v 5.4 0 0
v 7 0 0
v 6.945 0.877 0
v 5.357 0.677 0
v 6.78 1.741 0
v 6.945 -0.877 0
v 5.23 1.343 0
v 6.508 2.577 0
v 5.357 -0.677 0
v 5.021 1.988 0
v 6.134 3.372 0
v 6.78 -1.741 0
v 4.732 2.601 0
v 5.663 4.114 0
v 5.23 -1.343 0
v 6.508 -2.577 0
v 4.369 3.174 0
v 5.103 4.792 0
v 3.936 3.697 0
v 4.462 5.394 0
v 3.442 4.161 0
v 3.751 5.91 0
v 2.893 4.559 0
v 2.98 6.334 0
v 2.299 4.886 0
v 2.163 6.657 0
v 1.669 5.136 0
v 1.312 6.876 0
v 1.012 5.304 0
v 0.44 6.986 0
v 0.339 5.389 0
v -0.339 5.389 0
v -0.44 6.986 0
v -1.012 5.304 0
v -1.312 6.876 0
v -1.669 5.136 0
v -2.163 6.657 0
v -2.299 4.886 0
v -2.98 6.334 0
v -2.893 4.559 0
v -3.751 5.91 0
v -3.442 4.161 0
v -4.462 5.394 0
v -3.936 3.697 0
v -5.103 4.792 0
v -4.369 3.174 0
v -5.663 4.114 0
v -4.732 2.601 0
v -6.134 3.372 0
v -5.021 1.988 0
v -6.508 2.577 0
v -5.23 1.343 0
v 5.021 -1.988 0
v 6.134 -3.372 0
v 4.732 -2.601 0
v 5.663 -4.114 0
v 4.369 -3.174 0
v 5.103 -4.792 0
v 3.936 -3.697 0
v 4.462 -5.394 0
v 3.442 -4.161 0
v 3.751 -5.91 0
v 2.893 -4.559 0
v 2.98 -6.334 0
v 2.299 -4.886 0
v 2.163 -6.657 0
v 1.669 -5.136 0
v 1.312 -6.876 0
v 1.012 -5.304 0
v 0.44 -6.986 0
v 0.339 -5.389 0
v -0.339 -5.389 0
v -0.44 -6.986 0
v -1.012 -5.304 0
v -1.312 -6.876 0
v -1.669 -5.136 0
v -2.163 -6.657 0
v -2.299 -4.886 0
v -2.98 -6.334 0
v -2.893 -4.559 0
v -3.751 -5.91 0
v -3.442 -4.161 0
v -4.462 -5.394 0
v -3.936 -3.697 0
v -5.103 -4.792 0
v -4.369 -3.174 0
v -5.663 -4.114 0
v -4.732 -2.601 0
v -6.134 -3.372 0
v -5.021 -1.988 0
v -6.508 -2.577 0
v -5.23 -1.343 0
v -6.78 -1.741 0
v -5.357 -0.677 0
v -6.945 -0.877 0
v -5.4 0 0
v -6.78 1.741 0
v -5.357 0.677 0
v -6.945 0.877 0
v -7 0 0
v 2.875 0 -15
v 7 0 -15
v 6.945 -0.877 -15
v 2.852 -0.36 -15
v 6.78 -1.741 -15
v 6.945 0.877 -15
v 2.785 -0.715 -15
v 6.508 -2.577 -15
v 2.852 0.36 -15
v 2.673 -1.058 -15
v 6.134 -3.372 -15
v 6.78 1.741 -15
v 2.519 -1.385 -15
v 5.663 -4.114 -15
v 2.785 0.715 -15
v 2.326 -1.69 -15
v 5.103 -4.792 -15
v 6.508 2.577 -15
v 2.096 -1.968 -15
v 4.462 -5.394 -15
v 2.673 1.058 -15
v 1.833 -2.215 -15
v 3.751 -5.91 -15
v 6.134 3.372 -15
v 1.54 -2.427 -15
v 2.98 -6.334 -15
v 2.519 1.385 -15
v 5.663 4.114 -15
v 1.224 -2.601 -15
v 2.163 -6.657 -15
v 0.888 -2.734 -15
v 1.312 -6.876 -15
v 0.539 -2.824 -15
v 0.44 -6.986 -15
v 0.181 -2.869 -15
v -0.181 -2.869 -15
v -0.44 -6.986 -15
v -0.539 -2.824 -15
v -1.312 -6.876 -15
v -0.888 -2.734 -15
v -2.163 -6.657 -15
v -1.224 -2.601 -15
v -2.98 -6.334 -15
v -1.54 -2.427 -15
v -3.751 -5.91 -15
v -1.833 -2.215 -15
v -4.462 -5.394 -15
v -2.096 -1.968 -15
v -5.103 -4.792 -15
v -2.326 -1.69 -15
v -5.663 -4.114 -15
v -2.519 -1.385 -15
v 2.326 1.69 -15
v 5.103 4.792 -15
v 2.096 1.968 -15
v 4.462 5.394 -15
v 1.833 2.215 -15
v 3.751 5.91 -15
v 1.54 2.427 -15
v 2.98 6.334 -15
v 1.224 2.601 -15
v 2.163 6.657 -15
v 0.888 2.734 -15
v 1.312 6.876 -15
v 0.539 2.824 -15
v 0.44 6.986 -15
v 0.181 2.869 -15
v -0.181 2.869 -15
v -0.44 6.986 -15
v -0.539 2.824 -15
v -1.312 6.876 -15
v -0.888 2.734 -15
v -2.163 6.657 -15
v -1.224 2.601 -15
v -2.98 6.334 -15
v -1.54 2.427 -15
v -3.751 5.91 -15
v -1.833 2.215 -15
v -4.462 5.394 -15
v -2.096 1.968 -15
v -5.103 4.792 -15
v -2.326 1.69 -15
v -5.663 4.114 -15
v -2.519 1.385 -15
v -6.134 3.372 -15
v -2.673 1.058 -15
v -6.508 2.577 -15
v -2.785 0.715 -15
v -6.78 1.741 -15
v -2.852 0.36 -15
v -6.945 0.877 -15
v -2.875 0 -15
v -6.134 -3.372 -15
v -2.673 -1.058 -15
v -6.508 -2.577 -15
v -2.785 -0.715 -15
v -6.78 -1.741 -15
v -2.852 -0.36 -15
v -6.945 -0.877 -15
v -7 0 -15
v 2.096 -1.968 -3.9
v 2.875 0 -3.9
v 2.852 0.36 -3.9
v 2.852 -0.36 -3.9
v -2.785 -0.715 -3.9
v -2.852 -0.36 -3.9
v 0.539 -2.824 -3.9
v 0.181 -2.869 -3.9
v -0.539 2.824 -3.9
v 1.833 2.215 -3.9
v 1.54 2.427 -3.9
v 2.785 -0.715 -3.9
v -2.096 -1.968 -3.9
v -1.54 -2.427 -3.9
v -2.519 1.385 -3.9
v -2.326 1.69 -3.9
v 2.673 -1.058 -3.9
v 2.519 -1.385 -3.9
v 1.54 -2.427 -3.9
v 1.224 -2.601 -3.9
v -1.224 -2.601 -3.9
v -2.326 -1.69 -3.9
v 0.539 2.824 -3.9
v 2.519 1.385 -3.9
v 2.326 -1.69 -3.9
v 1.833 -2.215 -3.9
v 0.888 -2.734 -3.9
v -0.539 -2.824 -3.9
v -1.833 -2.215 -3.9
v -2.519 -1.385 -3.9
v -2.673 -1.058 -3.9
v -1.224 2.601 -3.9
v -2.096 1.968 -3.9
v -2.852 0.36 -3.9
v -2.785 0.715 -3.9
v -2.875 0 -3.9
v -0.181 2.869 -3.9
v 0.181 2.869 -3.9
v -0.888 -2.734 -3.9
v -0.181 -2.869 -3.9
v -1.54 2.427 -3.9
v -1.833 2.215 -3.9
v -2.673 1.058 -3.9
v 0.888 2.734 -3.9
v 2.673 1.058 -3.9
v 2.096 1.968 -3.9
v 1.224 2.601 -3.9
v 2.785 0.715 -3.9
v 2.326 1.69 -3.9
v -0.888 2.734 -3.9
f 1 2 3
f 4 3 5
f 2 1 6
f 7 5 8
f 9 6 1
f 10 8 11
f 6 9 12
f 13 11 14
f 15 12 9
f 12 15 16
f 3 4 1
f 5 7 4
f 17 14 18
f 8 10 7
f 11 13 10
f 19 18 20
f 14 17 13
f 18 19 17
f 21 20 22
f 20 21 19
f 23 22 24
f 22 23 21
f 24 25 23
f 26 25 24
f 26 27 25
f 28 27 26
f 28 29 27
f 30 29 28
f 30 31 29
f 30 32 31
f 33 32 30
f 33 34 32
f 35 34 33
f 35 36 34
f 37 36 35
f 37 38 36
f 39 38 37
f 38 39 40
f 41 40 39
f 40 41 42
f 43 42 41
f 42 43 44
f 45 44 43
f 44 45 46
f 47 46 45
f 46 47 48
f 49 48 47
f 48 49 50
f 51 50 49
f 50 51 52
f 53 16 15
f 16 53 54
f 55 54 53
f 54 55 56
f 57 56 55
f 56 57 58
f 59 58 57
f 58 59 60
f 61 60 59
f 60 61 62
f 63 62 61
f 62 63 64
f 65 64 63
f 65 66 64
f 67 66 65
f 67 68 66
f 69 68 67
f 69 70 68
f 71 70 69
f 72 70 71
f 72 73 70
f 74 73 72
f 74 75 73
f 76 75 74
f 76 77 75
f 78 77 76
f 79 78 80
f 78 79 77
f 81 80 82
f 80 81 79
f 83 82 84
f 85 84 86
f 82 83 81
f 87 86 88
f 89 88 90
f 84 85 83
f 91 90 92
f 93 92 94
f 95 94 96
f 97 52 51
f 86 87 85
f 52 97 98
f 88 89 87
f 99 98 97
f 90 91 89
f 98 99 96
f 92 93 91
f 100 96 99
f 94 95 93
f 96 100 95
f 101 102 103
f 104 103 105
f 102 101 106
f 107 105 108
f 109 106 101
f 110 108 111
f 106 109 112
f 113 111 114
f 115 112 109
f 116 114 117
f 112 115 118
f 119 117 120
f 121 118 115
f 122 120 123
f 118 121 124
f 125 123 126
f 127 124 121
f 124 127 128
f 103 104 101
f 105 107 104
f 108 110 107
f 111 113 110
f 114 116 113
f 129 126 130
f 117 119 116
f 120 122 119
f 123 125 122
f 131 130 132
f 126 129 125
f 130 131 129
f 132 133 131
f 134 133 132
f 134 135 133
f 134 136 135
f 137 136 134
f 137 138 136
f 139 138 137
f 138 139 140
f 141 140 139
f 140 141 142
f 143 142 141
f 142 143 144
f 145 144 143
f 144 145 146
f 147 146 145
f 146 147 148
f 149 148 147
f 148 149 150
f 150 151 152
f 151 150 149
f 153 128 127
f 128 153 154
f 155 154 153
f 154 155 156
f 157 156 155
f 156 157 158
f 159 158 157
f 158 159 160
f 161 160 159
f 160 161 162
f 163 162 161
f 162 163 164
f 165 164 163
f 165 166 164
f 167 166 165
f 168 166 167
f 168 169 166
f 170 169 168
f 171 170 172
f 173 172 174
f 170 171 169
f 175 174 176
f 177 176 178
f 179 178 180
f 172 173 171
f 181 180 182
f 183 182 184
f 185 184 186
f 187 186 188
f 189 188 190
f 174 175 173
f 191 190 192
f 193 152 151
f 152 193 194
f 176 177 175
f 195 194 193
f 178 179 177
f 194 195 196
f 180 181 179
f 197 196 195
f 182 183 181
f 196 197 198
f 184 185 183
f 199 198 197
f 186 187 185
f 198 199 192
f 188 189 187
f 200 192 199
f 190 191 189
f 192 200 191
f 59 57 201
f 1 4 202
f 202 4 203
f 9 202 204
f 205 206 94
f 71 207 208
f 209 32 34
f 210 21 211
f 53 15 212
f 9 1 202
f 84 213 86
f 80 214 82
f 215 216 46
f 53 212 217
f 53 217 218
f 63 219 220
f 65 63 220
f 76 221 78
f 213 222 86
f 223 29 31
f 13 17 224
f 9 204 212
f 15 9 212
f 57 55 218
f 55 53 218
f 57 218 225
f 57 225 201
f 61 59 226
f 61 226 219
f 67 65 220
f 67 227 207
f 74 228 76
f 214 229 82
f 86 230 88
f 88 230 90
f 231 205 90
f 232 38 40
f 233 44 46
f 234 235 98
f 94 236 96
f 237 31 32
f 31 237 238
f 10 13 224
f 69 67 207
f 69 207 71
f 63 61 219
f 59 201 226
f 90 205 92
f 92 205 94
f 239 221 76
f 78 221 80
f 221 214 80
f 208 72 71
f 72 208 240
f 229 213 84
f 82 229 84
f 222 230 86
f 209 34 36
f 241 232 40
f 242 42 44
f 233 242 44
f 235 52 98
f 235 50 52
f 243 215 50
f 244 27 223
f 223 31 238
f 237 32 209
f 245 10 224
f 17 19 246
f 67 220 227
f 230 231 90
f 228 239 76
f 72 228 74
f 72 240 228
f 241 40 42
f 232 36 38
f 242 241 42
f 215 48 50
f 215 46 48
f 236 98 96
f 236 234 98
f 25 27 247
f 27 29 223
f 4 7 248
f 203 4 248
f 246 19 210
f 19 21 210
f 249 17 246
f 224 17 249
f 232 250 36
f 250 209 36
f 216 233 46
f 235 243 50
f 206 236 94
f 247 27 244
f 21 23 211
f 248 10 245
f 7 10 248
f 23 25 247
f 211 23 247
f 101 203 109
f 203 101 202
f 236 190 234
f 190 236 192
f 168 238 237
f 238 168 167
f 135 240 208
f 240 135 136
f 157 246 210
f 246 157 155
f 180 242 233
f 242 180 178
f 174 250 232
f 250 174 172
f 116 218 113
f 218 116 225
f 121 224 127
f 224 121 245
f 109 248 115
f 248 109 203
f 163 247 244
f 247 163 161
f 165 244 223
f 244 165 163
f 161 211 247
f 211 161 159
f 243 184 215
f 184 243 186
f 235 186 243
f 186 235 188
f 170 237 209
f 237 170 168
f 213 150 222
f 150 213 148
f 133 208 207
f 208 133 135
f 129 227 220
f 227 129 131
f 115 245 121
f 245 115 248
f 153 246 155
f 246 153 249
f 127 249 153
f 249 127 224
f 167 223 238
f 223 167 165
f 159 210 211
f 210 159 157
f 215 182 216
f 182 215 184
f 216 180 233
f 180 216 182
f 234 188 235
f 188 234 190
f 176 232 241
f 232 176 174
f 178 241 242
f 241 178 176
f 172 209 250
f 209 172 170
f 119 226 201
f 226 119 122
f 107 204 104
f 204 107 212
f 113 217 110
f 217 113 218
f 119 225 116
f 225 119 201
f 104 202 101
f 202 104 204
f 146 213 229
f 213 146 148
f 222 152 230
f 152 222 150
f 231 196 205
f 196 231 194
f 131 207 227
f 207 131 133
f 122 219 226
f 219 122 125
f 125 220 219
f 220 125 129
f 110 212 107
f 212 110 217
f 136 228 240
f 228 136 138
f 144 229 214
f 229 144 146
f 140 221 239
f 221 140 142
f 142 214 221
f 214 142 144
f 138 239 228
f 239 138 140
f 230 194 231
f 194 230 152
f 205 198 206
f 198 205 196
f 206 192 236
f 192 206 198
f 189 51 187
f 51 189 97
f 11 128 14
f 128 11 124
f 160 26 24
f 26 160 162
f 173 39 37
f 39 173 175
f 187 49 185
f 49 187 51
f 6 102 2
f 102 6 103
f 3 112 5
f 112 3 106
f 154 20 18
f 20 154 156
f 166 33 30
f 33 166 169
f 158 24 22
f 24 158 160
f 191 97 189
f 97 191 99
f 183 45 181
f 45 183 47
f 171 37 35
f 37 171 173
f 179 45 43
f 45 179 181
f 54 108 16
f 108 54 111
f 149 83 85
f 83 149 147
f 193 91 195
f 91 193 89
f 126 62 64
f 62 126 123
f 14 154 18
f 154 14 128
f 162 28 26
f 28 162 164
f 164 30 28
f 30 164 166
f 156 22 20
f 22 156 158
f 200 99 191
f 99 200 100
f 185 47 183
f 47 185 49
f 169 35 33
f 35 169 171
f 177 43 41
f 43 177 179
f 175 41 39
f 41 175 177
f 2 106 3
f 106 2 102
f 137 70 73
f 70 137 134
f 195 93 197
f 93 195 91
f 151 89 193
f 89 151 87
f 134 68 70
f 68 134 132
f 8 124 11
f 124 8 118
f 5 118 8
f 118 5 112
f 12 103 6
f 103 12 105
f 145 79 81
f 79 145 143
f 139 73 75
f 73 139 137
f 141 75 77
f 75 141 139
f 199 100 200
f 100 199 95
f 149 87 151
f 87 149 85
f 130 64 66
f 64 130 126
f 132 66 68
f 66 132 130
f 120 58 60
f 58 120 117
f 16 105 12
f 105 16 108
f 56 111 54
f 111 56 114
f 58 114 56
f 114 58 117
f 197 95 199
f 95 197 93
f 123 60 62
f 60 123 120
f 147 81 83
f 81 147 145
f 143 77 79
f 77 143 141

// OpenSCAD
$fn = 50;


difference() {
	union() {
		translate(v = [0, 0, -15.0000000000]) {
			cylinder(h = 15, r = 7.0000000000);
		}
		cylinder(h = 0, r = 10.0000000000);
	}
	union() {
		translate(v = [0, 0, 0]) {
			rotate(a = [0, 0, 0]) {
				difference() {
					union() {
						#translate(v = [0, 0, -15.0000000000]) {
							cylinder(h = 15, r = 2.6000000000);
						}
						#translate(v = [0, 0, -3.9000000000]) {
							cylinder(h = 3.9000000000, r1 = 2.8750000000, r2 = 5.4000000000);
						}
						#translate(v = [0, 0, -15.0000000000]) {
							cylinder(h = 15, r = 2.8750000000);
						}
						#translate(v = [0, 0, -15.0000000000]) {
							cylinder(h = 15, r = 2.6000000000);
						}
					}
					union();
				}
			}
		}
	}
}
